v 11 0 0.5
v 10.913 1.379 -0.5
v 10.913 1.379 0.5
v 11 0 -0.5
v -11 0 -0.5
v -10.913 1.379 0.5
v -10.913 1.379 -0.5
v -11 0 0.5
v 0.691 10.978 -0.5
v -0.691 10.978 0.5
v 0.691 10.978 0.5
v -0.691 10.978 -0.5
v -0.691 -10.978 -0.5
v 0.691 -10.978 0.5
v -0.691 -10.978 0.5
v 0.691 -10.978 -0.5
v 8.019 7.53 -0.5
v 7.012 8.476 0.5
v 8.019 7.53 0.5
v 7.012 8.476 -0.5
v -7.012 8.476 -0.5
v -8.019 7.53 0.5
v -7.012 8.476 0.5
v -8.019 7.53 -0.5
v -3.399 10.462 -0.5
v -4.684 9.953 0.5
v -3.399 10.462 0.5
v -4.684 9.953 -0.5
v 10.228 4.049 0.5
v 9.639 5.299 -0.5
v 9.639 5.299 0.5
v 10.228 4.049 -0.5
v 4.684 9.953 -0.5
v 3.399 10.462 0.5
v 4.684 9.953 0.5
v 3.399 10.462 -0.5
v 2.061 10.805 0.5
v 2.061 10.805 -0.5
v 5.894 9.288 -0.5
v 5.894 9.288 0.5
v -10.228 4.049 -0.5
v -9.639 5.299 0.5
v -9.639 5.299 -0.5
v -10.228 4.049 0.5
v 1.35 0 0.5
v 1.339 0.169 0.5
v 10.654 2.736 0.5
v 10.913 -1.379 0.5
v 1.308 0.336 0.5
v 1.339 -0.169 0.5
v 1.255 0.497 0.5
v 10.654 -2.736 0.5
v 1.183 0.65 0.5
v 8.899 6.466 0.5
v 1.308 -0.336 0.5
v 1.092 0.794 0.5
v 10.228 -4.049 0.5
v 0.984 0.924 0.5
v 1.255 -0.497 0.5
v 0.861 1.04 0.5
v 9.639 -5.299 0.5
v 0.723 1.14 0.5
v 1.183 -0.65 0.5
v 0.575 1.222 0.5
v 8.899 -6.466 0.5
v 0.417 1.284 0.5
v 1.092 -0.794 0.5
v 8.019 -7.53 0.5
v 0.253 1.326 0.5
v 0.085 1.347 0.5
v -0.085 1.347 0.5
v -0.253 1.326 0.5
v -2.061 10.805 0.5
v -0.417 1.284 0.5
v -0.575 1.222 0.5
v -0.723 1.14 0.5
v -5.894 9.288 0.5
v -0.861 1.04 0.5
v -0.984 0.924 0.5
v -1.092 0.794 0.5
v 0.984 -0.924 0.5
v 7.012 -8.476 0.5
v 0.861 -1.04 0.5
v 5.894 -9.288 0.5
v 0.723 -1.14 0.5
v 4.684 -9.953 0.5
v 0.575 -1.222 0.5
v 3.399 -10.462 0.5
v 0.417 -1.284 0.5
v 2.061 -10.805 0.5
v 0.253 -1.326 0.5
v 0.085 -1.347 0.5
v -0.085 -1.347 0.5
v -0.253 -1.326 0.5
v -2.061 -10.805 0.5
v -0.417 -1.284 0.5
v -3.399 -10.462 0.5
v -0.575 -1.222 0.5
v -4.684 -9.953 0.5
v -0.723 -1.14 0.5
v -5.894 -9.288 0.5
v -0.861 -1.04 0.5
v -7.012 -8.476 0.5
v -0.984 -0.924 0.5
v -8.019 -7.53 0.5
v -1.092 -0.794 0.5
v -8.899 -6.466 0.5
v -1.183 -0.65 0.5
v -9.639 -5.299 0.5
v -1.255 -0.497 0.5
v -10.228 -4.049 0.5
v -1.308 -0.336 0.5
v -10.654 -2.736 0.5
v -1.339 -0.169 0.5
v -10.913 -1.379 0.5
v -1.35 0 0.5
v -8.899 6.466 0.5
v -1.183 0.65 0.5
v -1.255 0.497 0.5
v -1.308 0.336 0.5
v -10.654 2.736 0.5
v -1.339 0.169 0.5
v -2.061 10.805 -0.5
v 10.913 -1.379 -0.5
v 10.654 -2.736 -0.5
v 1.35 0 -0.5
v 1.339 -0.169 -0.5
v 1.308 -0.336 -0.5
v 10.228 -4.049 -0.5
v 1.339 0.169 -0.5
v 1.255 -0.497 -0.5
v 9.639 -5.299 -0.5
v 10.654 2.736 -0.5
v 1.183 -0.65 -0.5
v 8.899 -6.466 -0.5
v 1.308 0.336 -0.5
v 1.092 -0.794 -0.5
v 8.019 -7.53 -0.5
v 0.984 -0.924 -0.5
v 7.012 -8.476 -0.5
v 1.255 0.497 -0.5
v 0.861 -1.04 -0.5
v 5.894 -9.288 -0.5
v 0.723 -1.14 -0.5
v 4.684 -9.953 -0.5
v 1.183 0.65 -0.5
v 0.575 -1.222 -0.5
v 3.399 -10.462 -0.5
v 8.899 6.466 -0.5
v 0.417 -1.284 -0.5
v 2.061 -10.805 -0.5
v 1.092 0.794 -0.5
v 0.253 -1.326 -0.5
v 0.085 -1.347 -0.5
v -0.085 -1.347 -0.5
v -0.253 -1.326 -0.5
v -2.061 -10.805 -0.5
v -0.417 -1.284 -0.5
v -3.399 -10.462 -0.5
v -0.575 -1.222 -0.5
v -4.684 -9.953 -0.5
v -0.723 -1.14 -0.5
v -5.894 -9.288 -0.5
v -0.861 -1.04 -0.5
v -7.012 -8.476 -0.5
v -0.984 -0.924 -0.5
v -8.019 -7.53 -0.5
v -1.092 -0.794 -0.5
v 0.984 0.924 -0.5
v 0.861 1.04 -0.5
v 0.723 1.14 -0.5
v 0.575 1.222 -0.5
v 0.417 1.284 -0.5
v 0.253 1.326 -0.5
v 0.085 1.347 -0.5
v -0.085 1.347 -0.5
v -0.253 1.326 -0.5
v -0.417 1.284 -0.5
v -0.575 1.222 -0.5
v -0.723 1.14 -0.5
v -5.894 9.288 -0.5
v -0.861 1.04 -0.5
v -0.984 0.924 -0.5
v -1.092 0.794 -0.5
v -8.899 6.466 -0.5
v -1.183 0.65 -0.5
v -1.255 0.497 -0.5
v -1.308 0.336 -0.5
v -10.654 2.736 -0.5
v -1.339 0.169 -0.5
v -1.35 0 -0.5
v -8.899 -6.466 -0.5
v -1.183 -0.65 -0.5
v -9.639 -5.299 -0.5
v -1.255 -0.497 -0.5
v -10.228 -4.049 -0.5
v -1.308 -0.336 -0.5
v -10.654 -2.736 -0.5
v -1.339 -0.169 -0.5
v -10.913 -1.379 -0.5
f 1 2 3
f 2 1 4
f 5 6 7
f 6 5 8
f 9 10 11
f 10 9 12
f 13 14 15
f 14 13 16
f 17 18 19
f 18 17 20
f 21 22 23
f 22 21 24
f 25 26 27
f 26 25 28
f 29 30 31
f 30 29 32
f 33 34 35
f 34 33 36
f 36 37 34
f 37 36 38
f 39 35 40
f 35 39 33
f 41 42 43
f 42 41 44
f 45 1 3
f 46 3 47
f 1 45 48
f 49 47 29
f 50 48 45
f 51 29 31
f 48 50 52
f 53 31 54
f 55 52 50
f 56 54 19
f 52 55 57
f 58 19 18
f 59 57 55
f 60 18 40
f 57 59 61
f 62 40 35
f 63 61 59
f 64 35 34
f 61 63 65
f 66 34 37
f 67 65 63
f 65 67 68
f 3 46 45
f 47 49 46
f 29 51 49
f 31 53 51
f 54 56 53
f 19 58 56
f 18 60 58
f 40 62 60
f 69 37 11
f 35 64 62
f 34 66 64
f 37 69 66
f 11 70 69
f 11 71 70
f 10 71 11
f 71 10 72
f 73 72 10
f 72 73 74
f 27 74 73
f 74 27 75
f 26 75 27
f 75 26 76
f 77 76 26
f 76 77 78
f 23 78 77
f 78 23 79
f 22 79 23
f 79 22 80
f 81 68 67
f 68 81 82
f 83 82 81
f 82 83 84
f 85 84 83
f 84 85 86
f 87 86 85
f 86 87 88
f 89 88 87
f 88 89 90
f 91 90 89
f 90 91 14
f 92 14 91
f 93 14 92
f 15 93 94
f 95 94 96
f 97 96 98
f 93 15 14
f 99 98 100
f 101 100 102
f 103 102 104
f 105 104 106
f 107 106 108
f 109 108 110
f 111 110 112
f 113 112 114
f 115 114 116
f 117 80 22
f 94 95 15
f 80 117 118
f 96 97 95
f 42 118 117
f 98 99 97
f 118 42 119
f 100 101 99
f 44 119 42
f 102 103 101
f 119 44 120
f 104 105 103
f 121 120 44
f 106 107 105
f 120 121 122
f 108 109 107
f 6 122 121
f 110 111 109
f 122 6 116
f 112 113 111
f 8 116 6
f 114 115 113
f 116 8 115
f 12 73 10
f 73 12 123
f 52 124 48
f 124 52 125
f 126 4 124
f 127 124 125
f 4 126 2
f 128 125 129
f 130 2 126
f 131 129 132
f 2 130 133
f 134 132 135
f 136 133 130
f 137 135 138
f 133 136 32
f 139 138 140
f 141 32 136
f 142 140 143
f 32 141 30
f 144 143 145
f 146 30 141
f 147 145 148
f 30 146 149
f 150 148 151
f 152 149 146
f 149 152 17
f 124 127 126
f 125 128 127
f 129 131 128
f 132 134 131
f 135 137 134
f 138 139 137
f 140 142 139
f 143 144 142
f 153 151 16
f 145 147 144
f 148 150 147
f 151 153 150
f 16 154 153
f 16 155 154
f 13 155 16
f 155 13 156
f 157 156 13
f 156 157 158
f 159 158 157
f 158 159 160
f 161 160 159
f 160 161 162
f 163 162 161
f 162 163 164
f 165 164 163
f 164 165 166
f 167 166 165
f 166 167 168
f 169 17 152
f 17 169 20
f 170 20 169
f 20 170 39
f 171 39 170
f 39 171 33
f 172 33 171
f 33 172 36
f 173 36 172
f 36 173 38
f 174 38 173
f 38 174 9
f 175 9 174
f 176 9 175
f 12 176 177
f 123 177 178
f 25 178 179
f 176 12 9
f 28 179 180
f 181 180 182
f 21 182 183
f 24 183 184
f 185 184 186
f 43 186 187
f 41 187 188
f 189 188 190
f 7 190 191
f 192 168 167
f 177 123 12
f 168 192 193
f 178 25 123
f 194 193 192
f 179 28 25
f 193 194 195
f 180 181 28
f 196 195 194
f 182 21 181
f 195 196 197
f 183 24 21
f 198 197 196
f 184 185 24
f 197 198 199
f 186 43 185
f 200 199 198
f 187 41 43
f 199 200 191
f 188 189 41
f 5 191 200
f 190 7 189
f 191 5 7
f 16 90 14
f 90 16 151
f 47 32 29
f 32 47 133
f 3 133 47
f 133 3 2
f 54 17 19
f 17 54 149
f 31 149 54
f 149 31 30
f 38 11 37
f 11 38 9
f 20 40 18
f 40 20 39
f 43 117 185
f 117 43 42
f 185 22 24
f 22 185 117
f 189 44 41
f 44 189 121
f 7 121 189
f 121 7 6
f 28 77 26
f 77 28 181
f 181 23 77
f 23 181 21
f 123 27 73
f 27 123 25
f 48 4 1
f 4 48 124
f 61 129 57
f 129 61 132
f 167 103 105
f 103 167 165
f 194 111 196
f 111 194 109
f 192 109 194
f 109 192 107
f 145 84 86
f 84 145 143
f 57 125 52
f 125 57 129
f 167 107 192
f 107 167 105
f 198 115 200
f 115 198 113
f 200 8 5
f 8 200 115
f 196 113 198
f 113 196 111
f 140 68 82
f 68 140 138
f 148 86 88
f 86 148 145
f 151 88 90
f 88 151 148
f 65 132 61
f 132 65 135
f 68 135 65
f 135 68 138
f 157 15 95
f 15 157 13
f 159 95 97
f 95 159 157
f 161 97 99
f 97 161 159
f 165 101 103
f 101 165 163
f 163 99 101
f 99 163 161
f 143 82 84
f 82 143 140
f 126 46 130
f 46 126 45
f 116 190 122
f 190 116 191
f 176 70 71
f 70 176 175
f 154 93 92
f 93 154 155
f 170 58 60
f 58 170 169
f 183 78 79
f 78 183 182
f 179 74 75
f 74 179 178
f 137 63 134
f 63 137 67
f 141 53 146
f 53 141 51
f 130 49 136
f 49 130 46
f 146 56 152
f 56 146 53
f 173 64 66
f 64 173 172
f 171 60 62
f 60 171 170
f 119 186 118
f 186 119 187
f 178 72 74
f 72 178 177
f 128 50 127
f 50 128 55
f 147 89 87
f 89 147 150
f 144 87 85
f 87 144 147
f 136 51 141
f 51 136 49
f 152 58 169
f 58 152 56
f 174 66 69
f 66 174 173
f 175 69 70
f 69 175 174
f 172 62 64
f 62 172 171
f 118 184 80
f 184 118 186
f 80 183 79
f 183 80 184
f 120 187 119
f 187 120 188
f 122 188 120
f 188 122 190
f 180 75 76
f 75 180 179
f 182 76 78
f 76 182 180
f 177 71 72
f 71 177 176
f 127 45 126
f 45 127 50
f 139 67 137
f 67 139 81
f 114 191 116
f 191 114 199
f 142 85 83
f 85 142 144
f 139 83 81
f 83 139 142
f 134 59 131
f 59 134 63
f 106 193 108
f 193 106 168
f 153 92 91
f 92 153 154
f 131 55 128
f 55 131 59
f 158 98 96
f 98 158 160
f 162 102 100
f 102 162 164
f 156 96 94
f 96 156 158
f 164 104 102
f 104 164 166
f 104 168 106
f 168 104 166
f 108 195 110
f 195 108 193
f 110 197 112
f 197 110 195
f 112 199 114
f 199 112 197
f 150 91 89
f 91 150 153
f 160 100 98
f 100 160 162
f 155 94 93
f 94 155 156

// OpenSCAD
$fn = 50;


difference() {
	union() {
		translate(v = [0, 0, -0.5000000000]) {
			cylinder(h = 1, r = 11.0000000000);
		}
	}
	union() {
		translate(v = [0, 0, -100.0000000000]) {
			cylinder(h = 200, r = 1.3500000000);
		}
	}
}
